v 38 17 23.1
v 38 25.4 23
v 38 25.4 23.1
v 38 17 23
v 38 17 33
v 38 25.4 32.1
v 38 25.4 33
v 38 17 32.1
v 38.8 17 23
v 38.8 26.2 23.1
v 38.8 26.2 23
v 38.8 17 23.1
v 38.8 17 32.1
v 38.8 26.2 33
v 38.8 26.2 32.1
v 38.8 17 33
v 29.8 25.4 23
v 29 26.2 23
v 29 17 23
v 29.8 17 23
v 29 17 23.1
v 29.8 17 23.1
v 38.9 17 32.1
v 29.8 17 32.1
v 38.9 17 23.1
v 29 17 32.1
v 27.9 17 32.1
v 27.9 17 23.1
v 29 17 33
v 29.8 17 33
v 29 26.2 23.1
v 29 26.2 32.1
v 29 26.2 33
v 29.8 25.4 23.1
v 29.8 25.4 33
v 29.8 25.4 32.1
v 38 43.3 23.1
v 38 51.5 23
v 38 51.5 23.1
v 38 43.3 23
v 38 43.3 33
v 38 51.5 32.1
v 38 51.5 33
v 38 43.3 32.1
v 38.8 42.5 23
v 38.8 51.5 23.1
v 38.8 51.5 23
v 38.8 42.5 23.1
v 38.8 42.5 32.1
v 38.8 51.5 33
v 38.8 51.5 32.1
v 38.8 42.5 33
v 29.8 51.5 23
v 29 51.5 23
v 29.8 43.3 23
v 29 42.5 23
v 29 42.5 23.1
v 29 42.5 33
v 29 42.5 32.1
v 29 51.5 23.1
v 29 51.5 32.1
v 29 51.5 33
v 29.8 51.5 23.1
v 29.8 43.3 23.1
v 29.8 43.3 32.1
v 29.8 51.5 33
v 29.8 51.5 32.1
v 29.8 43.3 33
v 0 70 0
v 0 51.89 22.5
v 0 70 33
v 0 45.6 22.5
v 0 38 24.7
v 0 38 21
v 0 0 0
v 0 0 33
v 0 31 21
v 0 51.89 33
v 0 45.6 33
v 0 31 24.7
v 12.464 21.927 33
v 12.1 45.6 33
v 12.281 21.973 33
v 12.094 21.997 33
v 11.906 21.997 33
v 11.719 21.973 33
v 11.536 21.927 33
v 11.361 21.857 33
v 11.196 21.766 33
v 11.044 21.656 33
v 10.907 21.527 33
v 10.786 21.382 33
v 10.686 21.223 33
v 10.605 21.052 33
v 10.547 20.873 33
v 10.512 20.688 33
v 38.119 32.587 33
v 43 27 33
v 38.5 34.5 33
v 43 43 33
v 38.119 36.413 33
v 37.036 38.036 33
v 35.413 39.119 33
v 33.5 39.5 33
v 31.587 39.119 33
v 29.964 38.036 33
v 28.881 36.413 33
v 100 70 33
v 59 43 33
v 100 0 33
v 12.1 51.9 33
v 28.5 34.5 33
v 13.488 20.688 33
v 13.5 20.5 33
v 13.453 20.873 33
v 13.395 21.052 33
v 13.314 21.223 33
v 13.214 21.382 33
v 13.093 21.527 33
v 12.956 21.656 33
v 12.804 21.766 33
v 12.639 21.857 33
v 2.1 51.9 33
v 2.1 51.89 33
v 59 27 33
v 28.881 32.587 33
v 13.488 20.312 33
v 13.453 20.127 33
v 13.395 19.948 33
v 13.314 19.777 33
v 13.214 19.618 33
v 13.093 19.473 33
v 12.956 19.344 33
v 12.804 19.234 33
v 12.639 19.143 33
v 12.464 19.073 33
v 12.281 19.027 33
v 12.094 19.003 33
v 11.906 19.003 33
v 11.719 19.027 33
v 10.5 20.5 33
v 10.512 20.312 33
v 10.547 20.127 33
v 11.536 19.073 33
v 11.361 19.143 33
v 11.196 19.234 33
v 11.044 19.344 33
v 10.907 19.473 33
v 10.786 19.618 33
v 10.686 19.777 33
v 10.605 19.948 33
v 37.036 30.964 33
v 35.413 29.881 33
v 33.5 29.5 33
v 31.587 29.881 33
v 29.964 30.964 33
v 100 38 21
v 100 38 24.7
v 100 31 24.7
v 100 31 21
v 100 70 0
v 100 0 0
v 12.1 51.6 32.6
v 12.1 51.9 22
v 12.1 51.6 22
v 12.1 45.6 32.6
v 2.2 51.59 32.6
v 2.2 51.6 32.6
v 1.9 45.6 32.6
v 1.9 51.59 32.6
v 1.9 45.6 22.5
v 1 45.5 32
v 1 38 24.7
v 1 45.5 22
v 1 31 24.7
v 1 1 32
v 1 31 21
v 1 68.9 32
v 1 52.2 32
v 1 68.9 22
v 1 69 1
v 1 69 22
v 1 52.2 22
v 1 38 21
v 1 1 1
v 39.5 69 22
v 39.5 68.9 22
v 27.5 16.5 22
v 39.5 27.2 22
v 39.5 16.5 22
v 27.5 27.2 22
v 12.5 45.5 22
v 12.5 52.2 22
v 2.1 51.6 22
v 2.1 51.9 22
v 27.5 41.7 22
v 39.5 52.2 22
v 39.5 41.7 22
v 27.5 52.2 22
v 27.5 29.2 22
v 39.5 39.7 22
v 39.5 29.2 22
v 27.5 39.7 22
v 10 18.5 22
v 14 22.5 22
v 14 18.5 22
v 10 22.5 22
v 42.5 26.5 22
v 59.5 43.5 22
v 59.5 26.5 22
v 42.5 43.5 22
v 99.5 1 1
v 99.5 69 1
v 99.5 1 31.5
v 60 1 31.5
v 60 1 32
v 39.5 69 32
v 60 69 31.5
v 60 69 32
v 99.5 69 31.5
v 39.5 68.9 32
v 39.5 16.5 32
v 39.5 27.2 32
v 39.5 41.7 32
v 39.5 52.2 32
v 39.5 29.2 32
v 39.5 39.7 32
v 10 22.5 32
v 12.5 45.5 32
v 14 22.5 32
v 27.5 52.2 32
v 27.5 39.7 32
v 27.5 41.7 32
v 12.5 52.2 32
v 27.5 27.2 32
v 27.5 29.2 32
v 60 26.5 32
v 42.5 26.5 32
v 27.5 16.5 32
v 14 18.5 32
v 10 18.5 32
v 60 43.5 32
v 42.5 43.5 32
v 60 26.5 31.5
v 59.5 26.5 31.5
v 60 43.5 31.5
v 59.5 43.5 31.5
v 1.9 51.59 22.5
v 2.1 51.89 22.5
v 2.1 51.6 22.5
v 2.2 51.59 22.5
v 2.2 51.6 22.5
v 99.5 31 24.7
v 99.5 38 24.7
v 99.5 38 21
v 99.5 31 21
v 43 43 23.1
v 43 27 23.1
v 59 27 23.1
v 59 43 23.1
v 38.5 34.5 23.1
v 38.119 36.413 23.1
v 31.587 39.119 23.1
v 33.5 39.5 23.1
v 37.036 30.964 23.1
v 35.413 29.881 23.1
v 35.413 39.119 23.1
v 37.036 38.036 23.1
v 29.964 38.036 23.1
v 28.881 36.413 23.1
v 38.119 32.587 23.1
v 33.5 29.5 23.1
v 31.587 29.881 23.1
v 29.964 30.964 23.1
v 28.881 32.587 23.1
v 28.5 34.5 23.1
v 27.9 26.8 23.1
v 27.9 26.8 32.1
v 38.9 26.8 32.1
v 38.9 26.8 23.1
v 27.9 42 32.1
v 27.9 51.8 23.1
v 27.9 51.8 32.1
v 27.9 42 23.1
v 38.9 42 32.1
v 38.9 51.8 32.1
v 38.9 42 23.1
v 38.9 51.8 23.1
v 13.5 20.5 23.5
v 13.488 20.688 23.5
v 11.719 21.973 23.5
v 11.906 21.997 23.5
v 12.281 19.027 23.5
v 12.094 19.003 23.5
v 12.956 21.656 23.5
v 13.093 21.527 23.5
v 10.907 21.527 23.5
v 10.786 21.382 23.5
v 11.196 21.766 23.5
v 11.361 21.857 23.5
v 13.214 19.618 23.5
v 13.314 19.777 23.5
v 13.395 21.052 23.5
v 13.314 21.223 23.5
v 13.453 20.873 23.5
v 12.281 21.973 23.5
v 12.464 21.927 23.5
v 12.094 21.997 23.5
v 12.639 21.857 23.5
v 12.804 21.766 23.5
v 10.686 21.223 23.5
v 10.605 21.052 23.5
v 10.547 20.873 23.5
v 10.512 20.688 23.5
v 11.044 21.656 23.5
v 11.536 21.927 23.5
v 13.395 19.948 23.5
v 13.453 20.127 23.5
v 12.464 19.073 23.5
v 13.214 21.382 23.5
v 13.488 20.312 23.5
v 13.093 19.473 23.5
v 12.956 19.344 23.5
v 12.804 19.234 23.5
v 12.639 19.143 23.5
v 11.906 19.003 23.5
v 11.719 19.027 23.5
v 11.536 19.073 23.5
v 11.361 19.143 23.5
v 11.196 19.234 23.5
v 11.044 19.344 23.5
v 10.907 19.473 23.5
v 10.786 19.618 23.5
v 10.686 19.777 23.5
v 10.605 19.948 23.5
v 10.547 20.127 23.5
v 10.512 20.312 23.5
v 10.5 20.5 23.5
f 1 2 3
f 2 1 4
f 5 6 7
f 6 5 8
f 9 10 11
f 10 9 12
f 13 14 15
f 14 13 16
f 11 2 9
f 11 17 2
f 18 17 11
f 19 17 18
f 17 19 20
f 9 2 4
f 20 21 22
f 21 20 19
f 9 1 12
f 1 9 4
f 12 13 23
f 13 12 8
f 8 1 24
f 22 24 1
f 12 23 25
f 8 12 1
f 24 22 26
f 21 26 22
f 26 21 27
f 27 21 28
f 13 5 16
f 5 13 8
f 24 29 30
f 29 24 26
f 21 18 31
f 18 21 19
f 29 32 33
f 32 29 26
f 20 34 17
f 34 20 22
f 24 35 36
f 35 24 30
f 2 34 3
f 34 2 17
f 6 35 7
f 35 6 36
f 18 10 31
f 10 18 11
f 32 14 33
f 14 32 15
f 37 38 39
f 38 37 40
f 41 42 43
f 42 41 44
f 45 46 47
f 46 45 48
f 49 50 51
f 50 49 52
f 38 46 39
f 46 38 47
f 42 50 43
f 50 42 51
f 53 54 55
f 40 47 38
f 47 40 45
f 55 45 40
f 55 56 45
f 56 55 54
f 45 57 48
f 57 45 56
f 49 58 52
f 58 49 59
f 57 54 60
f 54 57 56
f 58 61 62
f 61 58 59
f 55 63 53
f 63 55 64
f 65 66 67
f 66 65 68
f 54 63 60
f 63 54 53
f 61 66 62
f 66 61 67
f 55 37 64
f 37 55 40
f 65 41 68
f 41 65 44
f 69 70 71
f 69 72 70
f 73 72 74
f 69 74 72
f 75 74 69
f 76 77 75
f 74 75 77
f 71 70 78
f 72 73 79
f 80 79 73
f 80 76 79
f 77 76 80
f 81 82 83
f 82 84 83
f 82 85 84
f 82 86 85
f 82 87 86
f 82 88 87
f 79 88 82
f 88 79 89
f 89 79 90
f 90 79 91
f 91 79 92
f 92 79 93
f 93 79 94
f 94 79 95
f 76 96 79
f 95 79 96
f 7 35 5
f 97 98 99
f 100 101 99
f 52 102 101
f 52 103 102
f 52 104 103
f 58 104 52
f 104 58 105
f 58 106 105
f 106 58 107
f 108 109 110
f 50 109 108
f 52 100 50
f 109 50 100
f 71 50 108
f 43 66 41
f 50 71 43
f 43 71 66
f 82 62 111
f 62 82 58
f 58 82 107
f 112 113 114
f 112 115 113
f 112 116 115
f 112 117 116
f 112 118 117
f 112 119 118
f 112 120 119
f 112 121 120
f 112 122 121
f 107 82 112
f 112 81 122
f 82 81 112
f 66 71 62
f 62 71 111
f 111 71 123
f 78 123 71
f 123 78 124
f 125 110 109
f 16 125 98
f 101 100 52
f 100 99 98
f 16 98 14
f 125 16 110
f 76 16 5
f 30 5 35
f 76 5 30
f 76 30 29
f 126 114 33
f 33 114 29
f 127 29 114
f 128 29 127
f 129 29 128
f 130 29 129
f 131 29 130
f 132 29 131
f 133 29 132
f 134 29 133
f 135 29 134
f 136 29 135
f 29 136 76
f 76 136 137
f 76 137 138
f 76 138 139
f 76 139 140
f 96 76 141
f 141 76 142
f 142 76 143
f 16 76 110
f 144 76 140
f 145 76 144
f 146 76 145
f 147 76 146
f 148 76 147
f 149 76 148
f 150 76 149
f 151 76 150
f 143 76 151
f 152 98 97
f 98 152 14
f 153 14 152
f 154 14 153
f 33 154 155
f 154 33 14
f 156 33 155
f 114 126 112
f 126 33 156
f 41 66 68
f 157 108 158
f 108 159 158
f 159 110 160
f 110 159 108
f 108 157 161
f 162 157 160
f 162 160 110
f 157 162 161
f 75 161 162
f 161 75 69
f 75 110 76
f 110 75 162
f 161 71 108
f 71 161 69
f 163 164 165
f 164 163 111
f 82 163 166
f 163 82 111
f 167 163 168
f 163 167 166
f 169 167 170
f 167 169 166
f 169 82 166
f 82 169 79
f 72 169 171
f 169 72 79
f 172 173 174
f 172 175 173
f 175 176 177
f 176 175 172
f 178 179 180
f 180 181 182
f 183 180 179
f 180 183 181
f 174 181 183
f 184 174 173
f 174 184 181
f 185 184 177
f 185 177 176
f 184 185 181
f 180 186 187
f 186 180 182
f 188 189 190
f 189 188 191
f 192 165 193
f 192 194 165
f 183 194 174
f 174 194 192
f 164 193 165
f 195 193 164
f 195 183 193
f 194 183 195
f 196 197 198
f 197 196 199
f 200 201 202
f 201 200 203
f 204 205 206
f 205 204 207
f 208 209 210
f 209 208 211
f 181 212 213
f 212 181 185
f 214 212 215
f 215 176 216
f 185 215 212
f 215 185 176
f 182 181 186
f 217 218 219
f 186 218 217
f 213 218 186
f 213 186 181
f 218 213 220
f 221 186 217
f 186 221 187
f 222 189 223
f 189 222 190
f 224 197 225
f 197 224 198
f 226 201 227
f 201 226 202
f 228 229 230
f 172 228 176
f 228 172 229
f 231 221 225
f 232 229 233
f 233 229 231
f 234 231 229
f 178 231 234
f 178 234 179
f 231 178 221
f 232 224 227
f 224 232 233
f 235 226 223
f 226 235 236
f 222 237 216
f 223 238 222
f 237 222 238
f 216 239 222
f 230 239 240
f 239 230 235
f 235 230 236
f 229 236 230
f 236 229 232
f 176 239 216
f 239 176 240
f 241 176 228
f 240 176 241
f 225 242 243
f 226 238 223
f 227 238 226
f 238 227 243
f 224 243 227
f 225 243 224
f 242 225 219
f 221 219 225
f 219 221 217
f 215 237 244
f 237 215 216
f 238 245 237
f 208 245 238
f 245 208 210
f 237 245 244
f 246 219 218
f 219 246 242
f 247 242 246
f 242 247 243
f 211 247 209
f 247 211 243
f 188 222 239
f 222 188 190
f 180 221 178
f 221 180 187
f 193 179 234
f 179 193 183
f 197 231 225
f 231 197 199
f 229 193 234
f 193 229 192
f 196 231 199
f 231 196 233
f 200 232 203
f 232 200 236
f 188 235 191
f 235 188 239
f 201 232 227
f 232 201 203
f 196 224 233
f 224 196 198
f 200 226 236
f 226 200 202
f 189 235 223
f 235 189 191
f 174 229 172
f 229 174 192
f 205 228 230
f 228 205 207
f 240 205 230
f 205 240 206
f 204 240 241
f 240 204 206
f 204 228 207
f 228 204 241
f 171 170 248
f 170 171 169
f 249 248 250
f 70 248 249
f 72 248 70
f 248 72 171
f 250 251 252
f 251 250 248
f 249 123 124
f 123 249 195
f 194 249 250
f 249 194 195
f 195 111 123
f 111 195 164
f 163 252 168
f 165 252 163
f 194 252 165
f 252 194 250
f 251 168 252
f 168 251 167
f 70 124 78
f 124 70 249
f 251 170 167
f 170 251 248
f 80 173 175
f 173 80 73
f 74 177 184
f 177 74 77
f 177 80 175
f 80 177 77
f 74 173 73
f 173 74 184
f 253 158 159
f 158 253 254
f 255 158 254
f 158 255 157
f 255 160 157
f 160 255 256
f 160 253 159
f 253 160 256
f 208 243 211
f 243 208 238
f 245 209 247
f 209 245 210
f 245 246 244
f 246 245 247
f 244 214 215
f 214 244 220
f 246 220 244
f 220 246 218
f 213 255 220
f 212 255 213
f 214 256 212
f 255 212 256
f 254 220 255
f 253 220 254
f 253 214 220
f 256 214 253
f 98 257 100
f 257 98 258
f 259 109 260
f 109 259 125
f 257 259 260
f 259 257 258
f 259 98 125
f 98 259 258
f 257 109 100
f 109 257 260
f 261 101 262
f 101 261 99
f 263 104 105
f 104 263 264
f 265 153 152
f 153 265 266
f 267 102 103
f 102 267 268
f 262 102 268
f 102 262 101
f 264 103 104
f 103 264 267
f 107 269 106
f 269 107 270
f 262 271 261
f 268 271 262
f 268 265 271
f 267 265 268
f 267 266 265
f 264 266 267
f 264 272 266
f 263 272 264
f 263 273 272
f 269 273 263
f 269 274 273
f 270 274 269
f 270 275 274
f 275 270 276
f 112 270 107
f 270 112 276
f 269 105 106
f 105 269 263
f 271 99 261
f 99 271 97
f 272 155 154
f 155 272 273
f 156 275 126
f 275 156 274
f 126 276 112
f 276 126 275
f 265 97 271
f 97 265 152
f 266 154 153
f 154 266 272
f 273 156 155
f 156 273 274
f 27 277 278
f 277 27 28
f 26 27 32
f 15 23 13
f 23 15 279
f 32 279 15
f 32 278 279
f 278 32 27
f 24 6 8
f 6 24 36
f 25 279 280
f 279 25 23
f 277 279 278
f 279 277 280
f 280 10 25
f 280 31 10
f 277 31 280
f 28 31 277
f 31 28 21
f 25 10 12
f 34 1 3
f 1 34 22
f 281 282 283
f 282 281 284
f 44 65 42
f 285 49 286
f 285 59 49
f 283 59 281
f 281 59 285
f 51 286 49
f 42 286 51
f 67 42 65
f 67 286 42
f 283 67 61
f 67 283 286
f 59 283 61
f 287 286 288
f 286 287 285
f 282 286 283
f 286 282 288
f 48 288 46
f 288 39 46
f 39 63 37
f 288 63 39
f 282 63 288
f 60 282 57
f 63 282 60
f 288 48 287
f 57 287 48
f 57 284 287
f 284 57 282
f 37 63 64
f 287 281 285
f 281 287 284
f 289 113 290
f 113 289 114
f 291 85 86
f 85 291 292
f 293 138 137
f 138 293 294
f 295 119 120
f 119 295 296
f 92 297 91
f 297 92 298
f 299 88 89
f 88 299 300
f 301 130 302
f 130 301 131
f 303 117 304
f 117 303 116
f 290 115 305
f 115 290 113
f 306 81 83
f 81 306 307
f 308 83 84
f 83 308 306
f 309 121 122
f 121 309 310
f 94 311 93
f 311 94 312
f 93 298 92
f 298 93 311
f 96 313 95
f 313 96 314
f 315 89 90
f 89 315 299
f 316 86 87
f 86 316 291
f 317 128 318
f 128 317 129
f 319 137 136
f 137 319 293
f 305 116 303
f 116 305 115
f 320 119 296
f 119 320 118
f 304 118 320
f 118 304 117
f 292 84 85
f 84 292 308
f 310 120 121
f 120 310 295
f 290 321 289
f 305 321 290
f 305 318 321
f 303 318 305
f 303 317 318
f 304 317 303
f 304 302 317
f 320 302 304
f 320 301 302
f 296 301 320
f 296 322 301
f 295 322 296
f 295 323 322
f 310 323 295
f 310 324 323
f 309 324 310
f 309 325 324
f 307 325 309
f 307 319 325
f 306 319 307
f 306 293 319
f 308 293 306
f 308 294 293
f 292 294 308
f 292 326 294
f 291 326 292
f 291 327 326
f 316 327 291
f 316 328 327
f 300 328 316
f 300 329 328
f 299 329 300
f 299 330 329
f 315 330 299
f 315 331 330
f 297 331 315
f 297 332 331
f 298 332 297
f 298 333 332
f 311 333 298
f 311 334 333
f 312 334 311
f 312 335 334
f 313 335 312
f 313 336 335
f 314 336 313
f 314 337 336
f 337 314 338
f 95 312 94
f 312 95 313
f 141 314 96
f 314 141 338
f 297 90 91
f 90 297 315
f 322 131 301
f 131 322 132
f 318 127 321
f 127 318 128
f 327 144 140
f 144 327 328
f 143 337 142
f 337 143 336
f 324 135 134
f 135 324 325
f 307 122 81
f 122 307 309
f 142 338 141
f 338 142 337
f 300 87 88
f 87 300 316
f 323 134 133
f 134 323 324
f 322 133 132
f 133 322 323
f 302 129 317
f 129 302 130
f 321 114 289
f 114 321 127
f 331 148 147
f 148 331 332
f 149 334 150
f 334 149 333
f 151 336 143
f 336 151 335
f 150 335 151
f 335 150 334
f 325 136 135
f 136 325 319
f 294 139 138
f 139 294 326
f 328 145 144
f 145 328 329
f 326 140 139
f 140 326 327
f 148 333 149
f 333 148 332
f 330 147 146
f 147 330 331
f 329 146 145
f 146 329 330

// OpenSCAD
difference(){
    color("gray", 1.0)
    cube([100, 70, 33]);
    
    translate([1.8, 45.6, 32.6])
    color("gray", 1.0)
    cube([10.3, 6.2, 0.7]);
    
    translate([1,1,1])
    cube([98, 68, 21]);
    
    translate([39.5, 1, 1])
    cube([20.5, 25.5, 31]);
    
    translate([39.5, 43.5, 1])
    cube([20.5, 25.5, 31]);
    
    translate([1, 1, 1])
    cube([40.5, 15.5, 31]);
    
    translate([1, 52.2, 1])
    cube([40.5, 16.7, 31]);
    
    translate([12.5, 45.4, 1])
    cube([15, 7, 31]);
    
    translate([27, 39.7, 1])
    cube([13, 2, 31]);
    
    translate([27, 27.2, 1])
    cube([13, 2, 31]);
    
    translate([6, 22.5, 1])
    cube([21.5, 23, 31]);
    
    translate([14, 16, 1])
    cube([13.5, 10, 31]);
    
    translate([1, 16, 1])
    cube([13.5, 2.5, 31]);
    
    translate([1, 18, 1])
    cube([9, 27.5, 31]);
    
    translate([-0.1, 45.6, 22.5])
    color("DimGray", 1.0)
    cube([2, 6, 10.7]);
    
    translate([2.1, 51.6, 1])
    color("DimGray", 1.0)
    cube([10, 0.3, 33]);
    
    
    
    translate([-0.1, 51.59, 22.5])
    color("DimGray", 1.0)
    cube([2.3, 0.3, 11.2]);
    
    translate([-0.1, 31, 21])
    cube([2, 7, 3.7]);
    
    translate([99, 31, 21])
    cube([2, 7, 3.7]);
    
    translate([39.5, 26, 1])
    cube([3, 18, 31]);
    
    translate([59.5, 1, 1])
    cube([40, 68, 30.5]);
    
    translate([43, 27, 23.1])
    color("DarkSlateGray", 1.0)
    cube([16, 16, 11]);
    
    translate([33.5, 34.5, 23.1])
    color("DarkSlateGray", 1.0)
    cylinder(12,5,5);
    
    translate([27.9, 17, 23.1])
    color("DarkSlateGray", 1.0)
    cube([11,9.8,9]);
    union(){
        translate([38,17,23])
        cube([0.8,9,11]);
        
        translate([29,17,23])
        cube([0.8,9,11]);
        
        translate([29,25.4,23])
        cube([9.8,0.8,11]);
        
    }
    
    translate([27.9, 42, 23.1])
    color("DarkSlateGray", 1.0)
    cube([11,9.8,9]);
    union(){
        translate([38,42.5,23])
        cube([0.8,9,11]);
        
        translate([29,42.5,23])
        cube([0.8,9,11]);
        
        translate([29,42.5,23])
        cube([9.8,0.8,11]);
        
    }
    
    
    color("DarkSlateGray", 1.0)
    translate([12, 20.5, 23.5])
    cylinder(12,1.5,1.5, $fn = 50);
}
